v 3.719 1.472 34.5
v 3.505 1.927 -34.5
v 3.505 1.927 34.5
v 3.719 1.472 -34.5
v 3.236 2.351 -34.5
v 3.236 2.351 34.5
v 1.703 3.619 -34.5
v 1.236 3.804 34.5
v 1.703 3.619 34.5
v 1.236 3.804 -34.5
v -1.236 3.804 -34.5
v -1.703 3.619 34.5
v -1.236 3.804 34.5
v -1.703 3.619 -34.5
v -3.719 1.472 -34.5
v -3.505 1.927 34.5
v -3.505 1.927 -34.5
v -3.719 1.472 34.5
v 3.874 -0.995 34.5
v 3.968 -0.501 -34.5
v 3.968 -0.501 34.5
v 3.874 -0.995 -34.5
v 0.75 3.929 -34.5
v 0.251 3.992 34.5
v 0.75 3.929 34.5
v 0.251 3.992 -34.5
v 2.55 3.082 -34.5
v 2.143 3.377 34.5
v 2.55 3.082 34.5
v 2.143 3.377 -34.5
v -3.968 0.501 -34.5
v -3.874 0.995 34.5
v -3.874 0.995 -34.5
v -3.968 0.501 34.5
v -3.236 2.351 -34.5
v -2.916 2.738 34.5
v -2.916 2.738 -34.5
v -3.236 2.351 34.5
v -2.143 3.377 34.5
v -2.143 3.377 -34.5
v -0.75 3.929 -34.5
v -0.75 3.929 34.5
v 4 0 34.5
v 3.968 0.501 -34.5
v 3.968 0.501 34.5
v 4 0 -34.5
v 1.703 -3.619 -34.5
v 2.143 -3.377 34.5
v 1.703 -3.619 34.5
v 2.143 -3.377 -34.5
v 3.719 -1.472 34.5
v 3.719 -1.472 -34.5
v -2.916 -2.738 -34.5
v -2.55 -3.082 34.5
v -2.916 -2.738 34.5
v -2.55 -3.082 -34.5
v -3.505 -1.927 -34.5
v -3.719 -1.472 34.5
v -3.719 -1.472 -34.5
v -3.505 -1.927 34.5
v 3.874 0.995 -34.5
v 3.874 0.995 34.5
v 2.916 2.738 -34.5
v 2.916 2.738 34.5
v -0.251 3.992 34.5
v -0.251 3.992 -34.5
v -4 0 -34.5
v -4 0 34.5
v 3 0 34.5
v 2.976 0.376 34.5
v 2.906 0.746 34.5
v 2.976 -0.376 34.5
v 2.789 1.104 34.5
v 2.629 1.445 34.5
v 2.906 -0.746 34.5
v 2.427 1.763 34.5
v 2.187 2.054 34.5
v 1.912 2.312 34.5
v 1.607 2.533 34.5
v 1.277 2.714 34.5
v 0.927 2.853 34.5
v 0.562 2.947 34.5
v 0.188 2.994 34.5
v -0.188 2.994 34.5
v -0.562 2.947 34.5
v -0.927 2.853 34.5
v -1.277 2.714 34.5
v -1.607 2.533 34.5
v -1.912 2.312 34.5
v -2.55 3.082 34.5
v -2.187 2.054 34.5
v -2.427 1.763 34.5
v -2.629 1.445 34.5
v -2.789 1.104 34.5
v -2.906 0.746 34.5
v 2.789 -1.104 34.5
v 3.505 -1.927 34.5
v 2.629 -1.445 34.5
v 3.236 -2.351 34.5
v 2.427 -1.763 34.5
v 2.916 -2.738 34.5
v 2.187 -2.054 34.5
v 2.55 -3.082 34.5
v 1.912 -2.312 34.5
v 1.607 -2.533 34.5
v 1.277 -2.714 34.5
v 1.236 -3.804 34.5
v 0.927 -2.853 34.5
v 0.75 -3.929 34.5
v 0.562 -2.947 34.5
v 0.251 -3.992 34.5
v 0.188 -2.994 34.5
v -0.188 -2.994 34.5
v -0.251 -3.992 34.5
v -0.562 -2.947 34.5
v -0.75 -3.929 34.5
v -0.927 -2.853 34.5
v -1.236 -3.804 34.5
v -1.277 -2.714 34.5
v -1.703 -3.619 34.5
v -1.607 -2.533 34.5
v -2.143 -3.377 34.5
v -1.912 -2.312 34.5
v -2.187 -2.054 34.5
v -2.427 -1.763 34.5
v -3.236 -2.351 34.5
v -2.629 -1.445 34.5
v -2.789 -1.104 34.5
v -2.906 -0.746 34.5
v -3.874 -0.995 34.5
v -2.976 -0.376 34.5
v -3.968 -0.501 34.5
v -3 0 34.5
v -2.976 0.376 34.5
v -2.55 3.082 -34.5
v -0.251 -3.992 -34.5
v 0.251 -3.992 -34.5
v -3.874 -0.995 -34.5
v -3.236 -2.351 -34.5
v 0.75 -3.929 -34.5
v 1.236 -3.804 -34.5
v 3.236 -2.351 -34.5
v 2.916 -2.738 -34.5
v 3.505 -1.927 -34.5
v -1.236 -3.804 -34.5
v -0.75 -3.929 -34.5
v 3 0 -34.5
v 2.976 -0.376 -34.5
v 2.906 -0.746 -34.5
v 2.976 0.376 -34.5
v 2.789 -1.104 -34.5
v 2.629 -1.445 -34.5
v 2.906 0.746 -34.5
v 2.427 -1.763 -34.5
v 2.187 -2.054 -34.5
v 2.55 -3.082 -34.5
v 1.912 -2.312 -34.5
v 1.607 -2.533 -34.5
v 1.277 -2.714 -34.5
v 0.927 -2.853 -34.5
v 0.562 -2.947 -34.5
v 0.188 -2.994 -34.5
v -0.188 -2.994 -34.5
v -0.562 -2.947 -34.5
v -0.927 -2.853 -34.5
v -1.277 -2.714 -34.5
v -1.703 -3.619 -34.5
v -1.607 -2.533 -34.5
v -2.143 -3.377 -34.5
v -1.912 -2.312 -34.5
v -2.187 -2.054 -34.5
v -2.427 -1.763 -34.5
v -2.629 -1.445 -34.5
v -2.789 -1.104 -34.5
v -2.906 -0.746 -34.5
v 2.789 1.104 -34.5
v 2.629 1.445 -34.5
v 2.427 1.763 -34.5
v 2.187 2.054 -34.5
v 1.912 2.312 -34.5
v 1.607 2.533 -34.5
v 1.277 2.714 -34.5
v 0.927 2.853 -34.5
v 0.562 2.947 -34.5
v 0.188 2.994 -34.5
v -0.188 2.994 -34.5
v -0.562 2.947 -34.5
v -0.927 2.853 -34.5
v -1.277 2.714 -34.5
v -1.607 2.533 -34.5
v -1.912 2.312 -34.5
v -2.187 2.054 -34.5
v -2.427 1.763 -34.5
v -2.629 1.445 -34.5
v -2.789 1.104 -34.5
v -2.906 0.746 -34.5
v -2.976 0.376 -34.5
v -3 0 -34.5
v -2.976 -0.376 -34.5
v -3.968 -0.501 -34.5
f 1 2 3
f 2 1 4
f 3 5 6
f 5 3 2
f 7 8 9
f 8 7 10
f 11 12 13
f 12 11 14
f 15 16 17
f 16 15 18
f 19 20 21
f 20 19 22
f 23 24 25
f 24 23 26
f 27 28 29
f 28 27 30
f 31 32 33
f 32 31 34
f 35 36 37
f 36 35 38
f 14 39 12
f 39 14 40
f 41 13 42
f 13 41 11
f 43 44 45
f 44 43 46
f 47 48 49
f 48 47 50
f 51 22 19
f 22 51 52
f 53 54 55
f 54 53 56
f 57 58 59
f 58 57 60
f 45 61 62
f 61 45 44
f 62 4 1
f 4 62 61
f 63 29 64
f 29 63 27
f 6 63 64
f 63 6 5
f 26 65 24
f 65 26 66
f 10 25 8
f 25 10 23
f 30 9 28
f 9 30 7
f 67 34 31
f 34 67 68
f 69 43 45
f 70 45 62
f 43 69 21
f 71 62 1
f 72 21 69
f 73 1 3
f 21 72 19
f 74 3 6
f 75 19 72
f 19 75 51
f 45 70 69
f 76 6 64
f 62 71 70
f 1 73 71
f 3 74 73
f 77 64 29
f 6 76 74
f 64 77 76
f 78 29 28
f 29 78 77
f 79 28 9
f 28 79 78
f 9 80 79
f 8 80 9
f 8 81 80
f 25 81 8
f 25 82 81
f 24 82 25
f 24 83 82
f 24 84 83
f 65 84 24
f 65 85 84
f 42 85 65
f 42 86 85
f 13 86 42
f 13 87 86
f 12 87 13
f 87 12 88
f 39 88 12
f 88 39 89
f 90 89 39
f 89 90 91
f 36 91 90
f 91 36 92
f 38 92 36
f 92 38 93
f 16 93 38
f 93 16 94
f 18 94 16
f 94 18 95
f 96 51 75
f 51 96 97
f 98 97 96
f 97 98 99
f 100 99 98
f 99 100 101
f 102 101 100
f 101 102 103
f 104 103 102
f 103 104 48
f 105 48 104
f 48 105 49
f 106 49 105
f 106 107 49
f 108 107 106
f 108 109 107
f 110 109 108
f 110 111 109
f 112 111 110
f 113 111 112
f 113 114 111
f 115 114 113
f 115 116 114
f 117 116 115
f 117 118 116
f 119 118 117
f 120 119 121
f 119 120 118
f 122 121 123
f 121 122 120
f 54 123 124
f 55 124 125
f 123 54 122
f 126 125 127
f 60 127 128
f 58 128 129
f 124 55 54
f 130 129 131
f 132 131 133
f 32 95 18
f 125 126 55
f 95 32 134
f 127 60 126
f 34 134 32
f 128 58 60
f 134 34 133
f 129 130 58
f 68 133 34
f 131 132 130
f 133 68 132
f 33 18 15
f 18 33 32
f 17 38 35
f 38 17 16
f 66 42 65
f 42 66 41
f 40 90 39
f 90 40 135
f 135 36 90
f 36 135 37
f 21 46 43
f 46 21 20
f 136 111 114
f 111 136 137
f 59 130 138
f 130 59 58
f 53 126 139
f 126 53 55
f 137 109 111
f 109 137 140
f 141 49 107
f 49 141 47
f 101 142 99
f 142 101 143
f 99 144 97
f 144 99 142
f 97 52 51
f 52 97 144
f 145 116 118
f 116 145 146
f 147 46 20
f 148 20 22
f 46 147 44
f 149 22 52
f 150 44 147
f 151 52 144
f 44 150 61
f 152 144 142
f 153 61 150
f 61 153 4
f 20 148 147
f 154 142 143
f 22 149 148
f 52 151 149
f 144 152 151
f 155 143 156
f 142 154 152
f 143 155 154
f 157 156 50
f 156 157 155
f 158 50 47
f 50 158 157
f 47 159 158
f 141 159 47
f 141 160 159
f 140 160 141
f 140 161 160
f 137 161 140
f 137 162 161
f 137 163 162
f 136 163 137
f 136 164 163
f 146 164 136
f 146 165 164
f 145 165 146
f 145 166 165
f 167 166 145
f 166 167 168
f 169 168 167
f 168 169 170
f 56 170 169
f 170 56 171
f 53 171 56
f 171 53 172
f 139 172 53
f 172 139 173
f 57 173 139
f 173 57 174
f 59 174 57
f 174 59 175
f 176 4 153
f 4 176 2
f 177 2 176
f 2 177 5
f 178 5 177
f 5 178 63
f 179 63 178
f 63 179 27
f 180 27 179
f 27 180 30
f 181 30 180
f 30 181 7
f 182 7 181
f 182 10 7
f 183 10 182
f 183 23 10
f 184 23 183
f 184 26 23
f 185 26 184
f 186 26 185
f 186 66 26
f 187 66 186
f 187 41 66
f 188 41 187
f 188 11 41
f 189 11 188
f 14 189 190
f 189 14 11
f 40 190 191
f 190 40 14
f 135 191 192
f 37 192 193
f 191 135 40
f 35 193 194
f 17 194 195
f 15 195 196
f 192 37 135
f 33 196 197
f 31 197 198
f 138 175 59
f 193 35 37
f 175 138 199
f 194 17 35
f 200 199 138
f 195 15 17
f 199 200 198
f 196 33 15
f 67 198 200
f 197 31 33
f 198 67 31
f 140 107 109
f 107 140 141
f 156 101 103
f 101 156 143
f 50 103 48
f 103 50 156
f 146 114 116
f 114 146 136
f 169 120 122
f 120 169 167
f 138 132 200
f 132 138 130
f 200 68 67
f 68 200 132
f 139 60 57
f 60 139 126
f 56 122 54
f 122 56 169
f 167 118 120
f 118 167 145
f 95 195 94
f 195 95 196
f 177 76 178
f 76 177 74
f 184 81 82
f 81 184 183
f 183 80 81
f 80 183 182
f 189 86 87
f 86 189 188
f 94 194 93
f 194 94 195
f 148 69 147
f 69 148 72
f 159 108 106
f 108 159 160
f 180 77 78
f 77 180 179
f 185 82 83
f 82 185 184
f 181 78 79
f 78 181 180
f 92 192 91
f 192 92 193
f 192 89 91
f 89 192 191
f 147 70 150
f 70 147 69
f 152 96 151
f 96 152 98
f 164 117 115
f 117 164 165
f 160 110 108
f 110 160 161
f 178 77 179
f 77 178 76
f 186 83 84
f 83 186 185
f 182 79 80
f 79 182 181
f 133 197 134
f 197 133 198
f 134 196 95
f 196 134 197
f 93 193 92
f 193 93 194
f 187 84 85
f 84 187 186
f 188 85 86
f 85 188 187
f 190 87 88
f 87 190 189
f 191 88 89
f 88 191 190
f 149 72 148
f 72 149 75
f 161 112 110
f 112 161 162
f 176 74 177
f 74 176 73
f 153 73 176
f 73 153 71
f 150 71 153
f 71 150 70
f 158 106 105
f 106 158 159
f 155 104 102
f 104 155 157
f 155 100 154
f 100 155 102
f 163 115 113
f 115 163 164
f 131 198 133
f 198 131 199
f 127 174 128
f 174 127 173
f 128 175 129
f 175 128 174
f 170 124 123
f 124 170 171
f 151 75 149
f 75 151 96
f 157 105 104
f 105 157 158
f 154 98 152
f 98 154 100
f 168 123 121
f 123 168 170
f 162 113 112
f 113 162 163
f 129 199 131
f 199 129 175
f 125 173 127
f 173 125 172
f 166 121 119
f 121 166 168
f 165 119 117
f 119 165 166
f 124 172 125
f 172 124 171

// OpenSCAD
$fn = 50;


difference() {
	union() {
		translate(v = [0, 0, -34.5000000000]) {
			cylinder(h = 69, r = 4.0000000000);
		}
	}
	union() {
		translate(v = [0, 0, -100.0000000000]) {
			cylinder(h = 200, r = 3);
		}
	}
}
